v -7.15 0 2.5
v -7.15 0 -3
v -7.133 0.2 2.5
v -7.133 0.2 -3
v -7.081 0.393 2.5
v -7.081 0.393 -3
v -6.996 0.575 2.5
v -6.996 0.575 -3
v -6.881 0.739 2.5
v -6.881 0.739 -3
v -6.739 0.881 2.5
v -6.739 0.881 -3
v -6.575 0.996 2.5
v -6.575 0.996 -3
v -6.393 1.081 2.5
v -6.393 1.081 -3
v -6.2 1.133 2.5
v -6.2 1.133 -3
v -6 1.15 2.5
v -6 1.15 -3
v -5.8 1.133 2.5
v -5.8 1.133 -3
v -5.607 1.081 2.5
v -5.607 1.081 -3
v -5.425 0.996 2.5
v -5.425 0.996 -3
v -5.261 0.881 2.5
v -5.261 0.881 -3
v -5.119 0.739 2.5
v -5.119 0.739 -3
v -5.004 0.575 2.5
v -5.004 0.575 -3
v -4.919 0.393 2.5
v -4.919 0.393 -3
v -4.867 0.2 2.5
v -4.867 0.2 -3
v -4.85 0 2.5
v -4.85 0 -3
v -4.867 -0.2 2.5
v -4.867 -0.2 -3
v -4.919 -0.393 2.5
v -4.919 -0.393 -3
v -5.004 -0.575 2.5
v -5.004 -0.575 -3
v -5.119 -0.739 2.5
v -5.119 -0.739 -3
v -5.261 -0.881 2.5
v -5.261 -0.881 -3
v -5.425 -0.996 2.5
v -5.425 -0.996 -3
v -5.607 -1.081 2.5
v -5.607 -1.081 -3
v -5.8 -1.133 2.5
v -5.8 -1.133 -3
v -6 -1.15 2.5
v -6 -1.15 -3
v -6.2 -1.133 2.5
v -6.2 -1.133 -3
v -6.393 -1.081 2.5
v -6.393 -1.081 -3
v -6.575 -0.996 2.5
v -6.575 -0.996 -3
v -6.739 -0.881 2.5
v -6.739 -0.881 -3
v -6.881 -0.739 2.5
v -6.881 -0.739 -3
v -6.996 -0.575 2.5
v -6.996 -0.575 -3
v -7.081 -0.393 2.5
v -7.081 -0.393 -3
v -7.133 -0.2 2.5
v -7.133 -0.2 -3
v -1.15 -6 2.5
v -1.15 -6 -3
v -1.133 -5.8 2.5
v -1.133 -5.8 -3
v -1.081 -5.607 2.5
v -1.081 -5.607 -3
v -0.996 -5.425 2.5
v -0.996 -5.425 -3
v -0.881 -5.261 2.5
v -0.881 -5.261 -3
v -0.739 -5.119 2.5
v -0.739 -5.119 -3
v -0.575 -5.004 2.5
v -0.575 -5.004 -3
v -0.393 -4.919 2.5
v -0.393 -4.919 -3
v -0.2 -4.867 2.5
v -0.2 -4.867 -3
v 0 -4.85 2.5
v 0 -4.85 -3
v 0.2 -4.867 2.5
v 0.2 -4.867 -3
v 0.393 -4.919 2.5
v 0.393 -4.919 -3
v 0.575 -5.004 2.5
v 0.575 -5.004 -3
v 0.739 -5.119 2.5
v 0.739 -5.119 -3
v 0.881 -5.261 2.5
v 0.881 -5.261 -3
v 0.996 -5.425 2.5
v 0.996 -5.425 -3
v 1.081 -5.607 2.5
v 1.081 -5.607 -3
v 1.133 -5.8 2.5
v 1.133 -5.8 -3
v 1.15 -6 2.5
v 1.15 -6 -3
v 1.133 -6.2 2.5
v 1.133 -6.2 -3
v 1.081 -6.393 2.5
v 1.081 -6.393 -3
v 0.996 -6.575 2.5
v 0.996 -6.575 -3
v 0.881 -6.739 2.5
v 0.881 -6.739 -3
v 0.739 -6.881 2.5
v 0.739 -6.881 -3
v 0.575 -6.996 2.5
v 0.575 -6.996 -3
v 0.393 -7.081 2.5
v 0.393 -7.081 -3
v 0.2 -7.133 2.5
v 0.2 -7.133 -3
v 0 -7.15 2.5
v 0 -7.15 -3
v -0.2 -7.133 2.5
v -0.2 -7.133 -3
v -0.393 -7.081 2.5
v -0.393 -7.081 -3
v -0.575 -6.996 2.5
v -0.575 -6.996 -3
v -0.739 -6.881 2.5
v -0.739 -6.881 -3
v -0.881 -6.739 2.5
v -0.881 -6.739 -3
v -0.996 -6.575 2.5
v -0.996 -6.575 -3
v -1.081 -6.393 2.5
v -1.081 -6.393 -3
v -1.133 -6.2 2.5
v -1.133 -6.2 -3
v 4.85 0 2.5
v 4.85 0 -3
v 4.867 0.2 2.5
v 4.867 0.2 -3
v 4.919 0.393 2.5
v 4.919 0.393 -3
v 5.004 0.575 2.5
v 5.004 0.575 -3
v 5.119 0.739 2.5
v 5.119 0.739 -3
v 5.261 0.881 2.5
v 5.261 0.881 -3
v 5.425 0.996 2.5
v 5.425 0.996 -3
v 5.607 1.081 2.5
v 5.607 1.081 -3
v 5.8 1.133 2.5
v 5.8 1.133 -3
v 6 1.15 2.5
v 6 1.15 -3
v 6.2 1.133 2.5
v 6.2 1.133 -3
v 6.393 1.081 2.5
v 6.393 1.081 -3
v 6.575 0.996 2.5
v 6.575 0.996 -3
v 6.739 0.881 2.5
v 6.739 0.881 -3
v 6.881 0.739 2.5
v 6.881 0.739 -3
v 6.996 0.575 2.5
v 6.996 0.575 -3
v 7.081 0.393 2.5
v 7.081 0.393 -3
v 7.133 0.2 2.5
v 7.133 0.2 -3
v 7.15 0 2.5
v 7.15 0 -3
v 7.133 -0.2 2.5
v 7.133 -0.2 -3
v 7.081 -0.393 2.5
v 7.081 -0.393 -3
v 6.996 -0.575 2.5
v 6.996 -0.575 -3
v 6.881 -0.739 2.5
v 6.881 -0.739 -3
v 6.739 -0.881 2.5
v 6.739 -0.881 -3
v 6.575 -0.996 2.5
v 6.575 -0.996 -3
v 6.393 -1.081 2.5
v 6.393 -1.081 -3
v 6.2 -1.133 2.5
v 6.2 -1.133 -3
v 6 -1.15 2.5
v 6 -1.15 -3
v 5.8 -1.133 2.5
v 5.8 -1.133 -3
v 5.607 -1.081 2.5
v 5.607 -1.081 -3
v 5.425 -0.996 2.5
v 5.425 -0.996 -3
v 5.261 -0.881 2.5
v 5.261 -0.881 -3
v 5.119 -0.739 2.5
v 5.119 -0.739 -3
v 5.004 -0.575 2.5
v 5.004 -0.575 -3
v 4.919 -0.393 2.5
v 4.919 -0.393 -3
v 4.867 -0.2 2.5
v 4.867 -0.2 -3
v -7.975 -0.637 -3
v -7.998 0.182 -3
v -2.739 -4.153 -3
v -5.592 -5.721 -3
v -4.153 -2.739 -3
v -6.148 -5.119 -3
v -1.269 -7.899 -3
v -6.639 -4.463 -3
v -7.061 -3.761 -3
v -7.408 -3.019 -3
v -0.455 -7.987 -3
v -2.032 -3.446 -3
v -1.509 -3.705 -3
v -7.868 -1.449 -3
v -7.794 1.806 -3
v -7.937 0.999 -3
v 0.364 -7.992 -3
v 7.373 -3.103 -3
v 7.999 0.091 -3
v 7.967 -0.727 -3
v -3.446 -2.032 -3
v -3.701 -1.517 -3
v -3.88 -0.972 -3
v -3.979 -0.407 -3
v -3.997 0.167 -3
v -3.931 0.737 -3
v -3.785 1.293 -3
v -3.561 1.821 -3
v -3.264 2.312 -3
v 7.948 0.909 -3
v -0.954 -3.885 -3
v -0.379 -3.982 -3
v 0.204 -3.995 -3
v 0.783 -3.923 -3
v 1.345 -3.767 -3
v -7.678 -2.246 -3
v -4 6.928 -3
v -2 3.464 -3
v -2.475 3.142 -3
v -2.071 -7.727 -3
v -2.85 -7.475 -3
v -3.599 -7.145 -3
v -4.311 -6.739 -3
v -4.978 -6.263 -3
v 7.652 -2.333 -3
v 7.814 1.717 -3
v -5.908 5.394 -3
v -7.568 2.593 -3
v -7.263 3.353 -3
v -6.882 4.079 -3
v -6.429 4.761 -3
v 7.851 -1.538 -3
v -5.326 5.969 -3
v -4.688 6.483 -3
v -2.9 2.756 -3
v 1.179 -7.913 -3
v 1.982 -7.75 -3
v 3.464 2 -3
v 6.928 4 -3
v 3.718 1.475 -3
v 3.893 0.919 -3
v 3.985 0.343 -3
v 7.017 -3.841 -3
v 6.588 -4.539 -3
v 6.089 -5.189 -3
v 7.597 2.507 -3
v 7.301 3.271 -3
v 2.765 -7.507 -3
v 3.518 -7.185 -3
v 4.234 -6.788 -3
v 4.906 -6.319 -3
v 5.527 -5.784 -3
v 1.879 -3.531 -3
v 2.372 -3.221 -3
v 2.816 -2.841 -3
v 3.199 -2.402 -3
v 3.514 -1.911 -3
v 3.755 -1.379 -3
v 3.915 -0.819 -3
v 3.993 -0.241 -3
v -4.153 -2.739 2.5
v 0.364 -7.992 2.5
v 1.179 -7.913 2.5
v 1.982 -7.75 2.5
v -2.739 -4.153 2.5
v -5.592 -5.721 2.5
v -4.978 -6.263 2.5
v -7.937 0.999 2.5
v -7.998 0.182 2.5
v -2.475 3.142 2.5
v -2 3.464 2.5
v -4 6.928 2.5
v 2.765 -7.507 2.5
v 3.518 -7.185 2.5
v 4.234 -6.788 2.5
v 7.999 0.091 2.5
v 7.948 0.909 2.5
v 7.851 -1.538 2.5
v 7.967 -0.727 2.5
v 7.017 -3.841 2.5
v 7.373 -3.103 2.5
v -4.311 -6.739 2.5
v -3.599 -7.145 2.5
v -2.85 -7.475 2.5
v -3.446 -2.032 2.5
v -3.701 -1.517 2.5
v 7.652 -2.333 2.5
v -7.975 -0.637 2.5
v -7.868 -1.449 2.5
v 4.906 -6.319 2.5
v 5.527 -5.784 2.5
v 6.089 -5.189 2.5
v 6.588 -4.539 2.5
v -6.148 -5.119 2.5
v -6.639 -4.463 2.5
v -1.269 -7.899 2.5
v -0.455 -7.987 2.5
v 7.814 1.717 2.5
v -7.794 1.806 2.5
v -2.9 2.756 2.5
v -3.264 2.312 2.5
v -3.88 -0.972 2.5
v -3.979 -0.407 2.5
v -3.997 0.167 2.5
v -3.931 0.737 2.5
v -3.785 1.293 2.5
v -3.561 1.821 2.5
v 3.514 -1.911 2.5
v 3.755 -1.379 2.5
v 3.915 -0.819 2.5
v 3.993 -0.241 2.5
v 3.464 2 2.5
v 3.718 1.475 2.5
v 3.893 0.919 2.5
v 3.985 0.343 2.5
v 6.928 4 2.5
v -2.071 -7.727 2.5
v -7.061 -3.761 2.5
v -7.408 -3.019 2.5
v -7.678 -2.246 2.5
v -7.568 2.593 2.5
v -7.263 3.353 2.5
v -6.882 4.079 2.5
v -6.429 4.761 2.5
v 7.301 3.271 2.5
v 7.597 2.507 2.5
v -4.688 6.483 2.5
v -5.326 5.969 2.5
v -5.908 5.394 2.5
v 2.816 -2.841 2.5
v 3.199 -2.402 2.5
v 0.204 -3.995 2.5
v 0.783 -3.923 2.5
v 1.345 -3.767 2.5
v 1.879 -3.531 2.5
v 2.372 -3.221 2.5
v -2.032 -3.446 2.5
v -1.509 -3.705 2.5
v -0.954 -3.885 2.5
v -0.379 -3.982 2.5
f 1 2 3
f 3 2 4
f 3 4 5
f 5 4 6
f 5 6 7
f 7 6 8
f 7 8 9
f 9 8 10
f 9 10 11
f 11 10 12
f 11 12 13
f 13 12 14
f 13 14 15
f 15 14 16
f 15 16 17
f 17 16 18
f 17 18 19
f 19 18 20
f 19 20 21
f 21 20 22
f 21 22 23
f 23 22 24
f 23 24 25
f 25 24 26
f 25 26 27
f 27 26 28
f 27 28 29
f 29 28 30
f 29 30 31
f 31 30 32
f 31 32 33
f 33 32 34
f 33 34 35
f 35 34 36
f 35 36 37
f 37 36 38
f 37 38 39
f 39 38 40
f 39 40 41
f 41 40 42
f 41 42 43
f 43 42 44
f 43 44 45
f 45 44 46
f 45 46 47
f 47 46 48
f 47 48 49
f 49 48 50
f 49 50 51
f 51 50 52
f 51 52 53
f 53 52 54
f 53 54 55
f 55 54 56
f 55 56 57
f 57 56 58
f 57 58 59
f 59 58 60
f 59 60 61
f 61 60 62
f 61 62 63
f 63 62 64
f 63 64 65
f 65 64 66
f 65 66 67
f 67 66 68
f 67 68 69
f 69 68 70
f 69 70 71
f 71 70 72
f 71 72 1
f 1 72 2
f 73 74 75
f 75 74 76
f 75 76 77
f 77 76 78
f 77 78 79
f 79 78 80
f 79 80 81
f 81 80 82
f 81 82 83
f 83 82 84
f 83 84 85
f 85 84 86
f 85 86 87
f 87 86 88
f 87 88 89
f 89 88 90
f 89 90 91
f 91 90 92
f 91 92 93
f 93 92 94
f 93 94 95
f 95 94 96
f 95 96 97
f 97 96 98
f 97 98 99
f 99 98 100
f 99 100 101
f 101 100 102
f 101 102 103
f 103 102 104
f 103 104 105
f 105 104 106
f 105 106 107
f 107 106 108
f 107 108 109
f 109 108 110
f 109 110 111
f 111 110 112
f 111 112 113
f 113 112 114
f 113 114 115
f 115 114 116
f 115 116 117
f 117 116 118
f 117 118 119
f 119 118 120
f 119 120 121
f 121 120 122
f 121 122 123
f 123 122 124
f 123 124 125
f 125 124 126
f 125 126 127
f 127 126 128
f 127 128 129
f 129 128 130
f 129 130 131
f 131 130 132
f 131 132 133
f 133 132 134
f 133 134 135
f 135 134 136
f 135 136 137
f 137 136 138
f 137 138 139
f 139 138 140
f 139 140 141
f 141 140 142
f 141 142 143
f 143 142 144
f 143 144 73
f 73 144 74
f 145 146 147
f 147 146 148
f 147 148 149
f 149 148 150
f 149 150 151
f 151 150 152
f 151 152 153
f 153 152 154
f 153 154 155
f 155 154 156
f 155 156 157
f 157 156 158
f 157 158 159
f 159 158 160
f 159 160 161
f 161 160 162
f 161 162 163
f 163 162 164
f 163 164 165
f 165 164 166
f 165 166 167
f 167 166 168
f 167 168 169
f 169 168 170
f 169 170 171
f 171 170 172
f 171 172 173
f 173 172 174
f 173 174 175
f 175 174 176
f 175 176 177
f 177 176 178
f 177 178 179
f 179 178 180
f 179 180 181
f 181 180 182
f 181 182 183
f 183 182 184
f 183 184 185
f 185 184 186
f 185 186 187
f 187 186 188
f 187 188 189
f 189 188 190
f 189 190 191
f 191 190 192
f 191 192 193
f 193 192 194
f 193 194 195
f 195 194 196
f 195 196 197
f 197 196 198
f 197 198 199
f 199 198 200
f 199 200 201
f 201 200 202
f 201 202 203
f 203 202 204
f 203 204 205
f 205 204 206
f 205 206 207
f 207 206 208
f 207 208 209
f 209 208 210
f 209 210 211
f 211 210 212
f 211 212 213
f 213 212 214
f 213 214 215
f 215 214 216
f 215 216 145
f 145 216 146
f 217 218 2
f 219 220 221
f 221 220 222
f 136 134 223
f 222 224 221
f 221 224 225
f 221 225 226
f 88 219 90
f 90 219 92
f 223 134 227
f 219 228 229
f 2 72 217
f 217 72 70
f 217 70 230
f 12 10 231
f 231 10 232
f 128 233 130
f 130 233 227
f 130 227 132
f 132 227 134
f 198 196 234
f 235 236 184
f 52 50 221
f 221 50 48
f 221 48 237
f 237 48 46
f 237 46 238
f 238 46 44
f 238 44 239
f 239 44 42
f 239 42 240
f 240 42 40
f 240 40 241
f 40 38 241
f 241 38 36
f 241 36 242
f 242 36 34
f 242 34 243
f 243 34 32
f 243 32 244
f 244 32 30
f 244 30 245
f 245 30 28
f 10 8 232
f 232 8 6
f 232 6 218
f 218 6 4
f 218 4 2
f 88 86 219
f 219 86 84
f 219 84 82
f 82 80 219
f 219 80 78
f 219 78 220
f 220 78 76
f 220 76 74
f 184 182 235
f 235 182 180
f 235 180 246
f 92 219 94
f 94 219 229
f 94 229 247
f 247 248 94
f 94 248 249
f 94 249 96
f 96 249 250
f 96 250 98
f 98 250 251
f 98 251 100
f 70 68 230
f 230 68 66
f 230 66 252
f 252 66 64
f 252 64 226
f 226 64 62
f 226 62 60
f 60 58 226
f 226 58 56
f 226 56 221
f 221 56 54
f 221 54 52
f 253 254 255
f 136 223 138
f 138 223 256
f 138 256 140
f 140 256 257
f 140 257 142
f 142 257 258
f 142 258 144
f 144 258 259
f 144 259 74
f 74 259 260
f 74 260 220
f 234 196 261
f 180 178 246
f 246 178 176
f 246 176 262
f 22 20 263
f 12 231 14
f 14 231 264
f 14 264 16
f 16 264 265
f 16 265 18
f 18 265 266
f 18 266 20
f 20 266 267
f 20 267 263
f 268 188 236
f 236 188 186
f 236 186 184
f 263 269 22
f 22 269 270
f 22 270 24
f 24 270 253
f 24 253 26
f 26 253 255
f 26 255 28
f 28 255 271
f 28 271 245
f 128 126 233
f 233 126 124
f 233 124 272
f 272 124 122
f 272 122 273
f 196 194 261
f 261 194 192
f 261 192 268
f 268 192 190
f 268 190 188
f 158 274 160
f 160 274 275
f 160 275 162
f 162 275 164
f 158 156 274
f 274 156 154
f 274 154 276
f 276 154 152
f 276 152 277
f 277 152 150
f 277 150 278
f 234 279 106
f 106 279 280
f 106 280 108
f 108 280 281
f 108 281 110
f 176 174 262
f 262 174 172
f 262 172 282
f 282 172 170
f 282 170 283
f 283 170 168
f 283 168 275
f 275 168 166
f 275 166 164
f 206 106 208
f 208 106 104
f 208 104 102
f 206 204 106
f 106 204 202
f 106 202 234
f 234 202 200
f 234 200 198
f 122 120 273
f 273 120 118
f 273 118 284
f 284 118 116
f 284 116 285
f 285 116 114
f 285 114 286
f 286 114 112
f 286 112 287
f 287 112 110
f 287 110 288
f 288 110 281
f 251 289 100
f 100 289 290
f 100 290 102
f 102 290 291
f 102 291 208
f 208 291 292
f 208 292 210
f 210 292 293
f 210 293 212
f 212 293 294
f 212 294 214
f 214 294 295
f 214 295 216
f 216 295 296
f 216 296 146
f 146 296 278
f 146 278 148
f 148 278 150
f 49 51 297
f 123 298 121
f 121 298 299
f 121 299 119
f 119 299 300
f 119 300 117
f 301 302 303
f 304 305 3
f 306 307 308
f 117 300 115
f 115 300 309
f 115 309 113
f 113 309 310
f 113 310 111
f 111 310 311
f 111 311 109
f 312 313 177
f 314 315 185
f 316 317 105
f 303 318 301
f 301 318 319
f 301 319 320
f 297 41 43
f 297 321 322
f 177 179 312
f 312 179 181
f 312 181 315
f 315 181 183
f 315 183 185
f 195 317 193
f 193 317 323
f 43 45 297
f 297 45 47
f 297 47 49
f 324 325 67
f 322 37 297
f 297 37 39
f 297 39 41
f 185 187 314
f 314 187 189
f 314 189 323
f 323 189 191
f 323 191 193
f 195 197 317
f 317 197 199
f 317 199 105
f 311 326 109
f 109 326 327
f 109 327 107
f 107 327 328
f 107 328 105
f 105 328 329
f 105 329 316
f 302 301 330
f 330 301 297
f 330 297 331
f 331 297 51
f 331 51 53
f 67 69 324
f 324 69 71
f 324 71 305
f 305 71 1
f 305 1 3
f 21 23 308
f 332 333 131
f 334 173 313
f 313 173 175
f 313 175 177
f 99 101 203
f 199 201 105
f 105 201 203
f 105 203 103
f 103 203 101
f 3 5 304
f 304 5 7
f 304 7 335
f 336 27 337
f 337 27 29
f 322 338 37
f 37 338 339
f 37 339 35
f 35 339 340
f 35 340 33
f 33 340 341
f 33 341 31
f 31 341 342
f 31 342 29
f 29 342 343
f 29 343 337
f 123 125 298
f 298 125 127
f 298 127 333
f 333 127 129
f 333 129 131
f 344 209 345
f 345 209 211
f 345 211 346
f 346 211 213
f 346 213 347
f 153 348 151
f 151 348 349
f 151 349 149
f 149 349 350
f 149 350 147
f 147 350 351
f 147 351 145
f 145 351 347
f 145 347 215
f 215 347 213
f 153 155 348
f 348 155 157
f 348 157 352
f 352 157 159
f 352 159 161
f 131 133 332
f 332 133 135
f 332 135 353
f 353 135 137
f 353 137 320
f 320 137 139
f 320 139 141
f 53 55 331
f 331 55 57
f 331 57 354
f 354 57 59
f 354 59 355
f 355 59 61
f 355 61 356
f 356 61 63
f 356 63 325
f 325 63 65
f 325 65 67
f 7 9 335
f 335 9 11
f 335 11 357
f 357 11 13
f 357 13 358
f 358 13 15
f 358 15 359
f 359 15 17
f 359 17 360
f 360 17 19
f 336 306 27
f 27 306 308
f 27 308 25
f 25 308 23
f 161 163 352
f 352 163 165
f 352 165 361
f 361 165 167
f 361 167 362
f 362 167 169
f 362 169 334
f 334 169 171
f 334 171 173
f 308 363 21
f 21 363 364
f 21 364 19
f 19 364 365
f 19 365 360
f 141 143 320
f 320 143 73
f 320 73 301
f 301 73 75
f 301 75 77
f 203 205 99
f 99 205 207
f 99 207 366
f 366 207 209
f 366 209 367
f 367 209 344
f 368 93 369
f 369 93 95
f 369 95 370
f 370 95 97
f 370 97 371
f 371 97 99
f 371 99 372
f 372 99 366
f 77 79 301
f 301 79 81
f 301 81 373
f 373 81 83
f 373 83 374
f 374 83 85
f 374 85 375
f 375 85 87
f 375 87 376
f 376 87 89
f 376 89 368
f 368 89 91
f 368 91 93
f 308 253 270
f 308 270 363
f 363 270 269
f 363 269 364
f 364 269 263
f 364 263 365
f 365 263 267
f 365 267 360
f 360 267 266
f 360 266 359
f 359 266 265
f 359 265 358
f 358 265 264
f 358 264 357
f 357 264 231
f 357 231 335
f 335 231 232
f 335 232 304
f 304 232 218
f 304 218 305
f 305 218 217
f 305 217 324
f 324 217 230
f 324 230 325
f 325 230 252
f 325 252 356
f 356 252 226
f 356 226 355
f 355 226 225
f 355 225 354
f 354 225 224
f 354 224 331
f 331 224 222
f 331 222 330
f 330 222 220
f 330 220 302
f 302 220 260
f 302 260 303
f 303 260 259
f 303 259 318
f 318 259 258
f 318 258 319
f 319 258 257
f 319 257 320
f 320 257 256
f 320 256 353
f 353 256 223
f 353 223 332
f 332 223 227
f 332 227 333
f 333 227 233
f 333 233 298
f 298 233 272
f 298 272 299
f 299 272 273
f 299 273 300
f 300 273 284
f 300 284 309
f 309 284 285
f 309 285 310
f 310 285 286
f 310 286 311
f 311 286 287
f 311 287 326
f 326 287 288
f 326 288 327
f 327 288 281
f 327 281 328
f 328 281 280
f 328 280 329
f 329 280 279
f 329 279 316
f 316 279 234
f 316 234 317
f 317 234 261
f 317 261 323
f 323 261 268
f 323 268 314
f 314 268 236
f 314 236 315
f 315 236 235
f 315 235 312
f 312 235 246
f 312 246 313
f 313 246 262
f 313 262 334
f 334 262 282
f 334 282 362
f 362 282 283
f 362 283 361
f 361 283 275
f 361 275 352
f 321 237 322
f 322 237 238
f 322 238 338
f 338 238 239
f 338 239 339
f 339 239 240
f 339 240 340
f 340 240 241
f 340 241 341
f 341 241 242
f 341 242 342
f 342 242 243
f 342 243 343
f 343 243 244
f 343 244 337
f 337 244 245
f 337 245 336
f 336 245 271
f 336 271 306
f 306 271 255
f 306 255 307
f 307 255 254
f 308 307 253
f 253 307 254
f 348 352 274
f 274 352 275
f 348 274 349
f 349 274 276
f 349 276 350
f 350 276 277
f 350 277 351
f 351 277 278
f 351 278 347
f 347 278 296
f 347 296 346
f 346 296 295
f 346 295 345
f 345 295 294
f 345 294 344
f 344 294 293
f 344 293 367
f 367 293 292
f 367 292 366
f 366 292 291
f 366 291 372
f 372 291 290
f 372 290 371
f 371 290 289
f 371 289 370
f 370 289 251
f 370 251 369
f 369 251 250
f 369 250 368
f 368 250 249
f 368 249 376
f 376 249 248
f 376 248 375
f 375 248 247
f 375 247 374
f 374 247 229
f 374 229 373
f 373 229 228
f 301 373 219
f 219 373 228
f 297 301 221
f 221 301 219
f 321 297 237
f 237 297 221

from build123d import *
from build123d.topology import SkipClean

# Parameters (mm, degrees)
SKETCH1_R           = 1.15
BOSS_EXTRUDE1_DEPTH = 8
SKETCH4_R           = 8
SKETCH4_R_2         = 1.15
BOSS_EXTRUDE2_DEPTH = 3
CUT_EXTRUDE3_DEPTH  = 5.5
SKETCH6_R           = 42
CUT_EXTRUDE5_DEPTH  = 5.5
SKETCH5_R           = 1.15
CUT_EXTRUDE6_DEPTH  = 50.185871955


with BuildPart() as part:
    # Sketch1 → Boss-Extrude1 (new body)
    with BuildSketch(Plane.XY):
        with BuildLine():
            Line((0, -42), (0, -40))
            ThreePointArc((0, -40), (22.793187837, -20.077432085), (6.099520657, 5.176470588))
            ThreePointArc((6.099520657, 5.176470588), (7.259881704, -3.360672202), (0, -8))
            ThreePointArc((0, -8), (-8, 0), (0, 8))
            ThreePointArc((0, 8), (25, -17), (0, -42))
        make_face()
        with Locations((0, 6)):
            Circle(SKETCH1_R, mode=Mode.SUBTRACT)
        with Locations((-6, 0)):
            Circle(SKETCH1_R, mode=Mode.SUBTRACT)
        with Locations((0, -6)):
            Circle(SKETCH1_R, mode=Mode.SUBTRACT)
        with Locations((6, 0)):
            Circle(SKETCH1_R, mode=Mode.SUBTRACT)
    extrude(amount=BOSS_EXTRUDE1_DEPTH)

    # Sketch4 → Boss-Extrude2 (add)
    with SkipClean():  # the faces are left unmerged after this step: merging them gives an invalid solid
        with BuildSketch(Plane(origin=(0, 0, 0), x_dir=(-1, 0, 0), z_dir=(0, 0, -1))):
            Circle(SKETCH4_R)
            with Locations((0, 6)):
                Circle(SKETCH4_R_2, mode=Mode.SUBTRACT)
            with Locations((-6, 0)):
                Circle(SKETCH4_R_2, mode=Mode.SUBTRACT)
            with Locations((0, -6)):
                Circle(SKETCH4_R_2, mode=Mode.SUBTRACT)
            with Locations((6, 0)):
                Circle(SKETCH4_R_2, mode=Mode.SUBTRACT)
        extrude(amount=BOSS_EXTRUDE2_DEPTH)

    # Sketch3 → Cut-Extrude3 (cut)
    with SkipClean():  # the faces are left unmerged after this step: merging them gives an invalid solid
        with BuildSketch(Plane.XY.offset(8)):
            with BuildLine():
                Line((6, 2), (10, 2))
                Line((10, 2), (10, -2))
                Line((10, -2), (6, -2))
                ThreePointArc((6, -2), (4, 0), (6, 2))
            make_face()
            with BuildLine():
                Line((2, -6), (2, -10))
                Line((2, -10), (-2, -10))
                Line((-2, -10), (-2, -6))
                ThreePointArc((-2, -6), (0, -4), (2, -6))
            make_face()
            with BuildLine():
                Line((-6, -2), (-10, -2))
                Line((-10, -2), (-10, 2))
                Line((-10, 2), (-6, 2))
                ThreePointArc((-6, 2), (-4, 0), (-6, -2))
            make_face()
            with BuildLine():
                Line((-2, 6), (-2, 10))
                Line((-2, 10), (2, 10))
                Line((2, 10), (2, 6))
                ThreePointArc((2, 6), (0, 4), (-2, 6))
            make_face()
        extrude(amount=-CUT_EXTRUDE3_DEPTH, mode=Mode.SUBTRACT)

    # Sketch6 → Cut-Extrude5 (cut)
    with SkipClean():  # the faces are left unmerged after this step: merging them gives an invalid solid
        with BuildSketch(Plane.XY.offset(8)):
            Circle(SKETCH6_R)
        extrude(amount=-CUT_EXTRUDE5_DEPTH, mode=Mode.SUBTRACT)

    # Sketch5 → Cut-Extrude6 (cut, through all)
    with BuildSketch(Plane(origin=(0, 0, -3), x_dir=(-1, 0, 0), z_dir=(0, 0, -1))):
        with BuildLine():
            Line((-6.92820323, 4), (-3.464101615, 2))
            ThreePointArc((-3.464101615, 2), (-2.815501367, -2.84129408), (2.031506006, -3.445719569))
            Line((2.031506006, -3.445719569), (2.738612788, -4.15282635))
            Line((2.738612788, -4.15282635), (4.15282635, -2.738612788))
            Line((4.15282635, -2.738612788), (3.445719569, -2.031506006))
            ThreePointArc((3.445719569, -2.031506006), (3.868383537, 1.017648668), (2, 3.464101615))
            Line((2, 3.464101615), (4, 6.92820323))
            ThreePointArc((4, 6.92820323), (-2.070552361, 7.72740661), (-6.92820323, 4))
        make_face()
        with Locations((0, 6)):
            Circle(SKETCH5_R, mode=Mode.SUBTRACT)
    extrude(amount=-CUT_EXTRUDE6_DEPTH, mode=Mode.SUBTRACT)


with BuildPart() as cut_extrude6_kept_piece:
    # of the separate pieces the step leaves, the one the design keeps (cut_extrude6_pieces_kept)
    add(part.part.solids().sort_by_distance((-4, 6.92820323, -3))[0])


solid = cut_extrude6_kept_piece.part
